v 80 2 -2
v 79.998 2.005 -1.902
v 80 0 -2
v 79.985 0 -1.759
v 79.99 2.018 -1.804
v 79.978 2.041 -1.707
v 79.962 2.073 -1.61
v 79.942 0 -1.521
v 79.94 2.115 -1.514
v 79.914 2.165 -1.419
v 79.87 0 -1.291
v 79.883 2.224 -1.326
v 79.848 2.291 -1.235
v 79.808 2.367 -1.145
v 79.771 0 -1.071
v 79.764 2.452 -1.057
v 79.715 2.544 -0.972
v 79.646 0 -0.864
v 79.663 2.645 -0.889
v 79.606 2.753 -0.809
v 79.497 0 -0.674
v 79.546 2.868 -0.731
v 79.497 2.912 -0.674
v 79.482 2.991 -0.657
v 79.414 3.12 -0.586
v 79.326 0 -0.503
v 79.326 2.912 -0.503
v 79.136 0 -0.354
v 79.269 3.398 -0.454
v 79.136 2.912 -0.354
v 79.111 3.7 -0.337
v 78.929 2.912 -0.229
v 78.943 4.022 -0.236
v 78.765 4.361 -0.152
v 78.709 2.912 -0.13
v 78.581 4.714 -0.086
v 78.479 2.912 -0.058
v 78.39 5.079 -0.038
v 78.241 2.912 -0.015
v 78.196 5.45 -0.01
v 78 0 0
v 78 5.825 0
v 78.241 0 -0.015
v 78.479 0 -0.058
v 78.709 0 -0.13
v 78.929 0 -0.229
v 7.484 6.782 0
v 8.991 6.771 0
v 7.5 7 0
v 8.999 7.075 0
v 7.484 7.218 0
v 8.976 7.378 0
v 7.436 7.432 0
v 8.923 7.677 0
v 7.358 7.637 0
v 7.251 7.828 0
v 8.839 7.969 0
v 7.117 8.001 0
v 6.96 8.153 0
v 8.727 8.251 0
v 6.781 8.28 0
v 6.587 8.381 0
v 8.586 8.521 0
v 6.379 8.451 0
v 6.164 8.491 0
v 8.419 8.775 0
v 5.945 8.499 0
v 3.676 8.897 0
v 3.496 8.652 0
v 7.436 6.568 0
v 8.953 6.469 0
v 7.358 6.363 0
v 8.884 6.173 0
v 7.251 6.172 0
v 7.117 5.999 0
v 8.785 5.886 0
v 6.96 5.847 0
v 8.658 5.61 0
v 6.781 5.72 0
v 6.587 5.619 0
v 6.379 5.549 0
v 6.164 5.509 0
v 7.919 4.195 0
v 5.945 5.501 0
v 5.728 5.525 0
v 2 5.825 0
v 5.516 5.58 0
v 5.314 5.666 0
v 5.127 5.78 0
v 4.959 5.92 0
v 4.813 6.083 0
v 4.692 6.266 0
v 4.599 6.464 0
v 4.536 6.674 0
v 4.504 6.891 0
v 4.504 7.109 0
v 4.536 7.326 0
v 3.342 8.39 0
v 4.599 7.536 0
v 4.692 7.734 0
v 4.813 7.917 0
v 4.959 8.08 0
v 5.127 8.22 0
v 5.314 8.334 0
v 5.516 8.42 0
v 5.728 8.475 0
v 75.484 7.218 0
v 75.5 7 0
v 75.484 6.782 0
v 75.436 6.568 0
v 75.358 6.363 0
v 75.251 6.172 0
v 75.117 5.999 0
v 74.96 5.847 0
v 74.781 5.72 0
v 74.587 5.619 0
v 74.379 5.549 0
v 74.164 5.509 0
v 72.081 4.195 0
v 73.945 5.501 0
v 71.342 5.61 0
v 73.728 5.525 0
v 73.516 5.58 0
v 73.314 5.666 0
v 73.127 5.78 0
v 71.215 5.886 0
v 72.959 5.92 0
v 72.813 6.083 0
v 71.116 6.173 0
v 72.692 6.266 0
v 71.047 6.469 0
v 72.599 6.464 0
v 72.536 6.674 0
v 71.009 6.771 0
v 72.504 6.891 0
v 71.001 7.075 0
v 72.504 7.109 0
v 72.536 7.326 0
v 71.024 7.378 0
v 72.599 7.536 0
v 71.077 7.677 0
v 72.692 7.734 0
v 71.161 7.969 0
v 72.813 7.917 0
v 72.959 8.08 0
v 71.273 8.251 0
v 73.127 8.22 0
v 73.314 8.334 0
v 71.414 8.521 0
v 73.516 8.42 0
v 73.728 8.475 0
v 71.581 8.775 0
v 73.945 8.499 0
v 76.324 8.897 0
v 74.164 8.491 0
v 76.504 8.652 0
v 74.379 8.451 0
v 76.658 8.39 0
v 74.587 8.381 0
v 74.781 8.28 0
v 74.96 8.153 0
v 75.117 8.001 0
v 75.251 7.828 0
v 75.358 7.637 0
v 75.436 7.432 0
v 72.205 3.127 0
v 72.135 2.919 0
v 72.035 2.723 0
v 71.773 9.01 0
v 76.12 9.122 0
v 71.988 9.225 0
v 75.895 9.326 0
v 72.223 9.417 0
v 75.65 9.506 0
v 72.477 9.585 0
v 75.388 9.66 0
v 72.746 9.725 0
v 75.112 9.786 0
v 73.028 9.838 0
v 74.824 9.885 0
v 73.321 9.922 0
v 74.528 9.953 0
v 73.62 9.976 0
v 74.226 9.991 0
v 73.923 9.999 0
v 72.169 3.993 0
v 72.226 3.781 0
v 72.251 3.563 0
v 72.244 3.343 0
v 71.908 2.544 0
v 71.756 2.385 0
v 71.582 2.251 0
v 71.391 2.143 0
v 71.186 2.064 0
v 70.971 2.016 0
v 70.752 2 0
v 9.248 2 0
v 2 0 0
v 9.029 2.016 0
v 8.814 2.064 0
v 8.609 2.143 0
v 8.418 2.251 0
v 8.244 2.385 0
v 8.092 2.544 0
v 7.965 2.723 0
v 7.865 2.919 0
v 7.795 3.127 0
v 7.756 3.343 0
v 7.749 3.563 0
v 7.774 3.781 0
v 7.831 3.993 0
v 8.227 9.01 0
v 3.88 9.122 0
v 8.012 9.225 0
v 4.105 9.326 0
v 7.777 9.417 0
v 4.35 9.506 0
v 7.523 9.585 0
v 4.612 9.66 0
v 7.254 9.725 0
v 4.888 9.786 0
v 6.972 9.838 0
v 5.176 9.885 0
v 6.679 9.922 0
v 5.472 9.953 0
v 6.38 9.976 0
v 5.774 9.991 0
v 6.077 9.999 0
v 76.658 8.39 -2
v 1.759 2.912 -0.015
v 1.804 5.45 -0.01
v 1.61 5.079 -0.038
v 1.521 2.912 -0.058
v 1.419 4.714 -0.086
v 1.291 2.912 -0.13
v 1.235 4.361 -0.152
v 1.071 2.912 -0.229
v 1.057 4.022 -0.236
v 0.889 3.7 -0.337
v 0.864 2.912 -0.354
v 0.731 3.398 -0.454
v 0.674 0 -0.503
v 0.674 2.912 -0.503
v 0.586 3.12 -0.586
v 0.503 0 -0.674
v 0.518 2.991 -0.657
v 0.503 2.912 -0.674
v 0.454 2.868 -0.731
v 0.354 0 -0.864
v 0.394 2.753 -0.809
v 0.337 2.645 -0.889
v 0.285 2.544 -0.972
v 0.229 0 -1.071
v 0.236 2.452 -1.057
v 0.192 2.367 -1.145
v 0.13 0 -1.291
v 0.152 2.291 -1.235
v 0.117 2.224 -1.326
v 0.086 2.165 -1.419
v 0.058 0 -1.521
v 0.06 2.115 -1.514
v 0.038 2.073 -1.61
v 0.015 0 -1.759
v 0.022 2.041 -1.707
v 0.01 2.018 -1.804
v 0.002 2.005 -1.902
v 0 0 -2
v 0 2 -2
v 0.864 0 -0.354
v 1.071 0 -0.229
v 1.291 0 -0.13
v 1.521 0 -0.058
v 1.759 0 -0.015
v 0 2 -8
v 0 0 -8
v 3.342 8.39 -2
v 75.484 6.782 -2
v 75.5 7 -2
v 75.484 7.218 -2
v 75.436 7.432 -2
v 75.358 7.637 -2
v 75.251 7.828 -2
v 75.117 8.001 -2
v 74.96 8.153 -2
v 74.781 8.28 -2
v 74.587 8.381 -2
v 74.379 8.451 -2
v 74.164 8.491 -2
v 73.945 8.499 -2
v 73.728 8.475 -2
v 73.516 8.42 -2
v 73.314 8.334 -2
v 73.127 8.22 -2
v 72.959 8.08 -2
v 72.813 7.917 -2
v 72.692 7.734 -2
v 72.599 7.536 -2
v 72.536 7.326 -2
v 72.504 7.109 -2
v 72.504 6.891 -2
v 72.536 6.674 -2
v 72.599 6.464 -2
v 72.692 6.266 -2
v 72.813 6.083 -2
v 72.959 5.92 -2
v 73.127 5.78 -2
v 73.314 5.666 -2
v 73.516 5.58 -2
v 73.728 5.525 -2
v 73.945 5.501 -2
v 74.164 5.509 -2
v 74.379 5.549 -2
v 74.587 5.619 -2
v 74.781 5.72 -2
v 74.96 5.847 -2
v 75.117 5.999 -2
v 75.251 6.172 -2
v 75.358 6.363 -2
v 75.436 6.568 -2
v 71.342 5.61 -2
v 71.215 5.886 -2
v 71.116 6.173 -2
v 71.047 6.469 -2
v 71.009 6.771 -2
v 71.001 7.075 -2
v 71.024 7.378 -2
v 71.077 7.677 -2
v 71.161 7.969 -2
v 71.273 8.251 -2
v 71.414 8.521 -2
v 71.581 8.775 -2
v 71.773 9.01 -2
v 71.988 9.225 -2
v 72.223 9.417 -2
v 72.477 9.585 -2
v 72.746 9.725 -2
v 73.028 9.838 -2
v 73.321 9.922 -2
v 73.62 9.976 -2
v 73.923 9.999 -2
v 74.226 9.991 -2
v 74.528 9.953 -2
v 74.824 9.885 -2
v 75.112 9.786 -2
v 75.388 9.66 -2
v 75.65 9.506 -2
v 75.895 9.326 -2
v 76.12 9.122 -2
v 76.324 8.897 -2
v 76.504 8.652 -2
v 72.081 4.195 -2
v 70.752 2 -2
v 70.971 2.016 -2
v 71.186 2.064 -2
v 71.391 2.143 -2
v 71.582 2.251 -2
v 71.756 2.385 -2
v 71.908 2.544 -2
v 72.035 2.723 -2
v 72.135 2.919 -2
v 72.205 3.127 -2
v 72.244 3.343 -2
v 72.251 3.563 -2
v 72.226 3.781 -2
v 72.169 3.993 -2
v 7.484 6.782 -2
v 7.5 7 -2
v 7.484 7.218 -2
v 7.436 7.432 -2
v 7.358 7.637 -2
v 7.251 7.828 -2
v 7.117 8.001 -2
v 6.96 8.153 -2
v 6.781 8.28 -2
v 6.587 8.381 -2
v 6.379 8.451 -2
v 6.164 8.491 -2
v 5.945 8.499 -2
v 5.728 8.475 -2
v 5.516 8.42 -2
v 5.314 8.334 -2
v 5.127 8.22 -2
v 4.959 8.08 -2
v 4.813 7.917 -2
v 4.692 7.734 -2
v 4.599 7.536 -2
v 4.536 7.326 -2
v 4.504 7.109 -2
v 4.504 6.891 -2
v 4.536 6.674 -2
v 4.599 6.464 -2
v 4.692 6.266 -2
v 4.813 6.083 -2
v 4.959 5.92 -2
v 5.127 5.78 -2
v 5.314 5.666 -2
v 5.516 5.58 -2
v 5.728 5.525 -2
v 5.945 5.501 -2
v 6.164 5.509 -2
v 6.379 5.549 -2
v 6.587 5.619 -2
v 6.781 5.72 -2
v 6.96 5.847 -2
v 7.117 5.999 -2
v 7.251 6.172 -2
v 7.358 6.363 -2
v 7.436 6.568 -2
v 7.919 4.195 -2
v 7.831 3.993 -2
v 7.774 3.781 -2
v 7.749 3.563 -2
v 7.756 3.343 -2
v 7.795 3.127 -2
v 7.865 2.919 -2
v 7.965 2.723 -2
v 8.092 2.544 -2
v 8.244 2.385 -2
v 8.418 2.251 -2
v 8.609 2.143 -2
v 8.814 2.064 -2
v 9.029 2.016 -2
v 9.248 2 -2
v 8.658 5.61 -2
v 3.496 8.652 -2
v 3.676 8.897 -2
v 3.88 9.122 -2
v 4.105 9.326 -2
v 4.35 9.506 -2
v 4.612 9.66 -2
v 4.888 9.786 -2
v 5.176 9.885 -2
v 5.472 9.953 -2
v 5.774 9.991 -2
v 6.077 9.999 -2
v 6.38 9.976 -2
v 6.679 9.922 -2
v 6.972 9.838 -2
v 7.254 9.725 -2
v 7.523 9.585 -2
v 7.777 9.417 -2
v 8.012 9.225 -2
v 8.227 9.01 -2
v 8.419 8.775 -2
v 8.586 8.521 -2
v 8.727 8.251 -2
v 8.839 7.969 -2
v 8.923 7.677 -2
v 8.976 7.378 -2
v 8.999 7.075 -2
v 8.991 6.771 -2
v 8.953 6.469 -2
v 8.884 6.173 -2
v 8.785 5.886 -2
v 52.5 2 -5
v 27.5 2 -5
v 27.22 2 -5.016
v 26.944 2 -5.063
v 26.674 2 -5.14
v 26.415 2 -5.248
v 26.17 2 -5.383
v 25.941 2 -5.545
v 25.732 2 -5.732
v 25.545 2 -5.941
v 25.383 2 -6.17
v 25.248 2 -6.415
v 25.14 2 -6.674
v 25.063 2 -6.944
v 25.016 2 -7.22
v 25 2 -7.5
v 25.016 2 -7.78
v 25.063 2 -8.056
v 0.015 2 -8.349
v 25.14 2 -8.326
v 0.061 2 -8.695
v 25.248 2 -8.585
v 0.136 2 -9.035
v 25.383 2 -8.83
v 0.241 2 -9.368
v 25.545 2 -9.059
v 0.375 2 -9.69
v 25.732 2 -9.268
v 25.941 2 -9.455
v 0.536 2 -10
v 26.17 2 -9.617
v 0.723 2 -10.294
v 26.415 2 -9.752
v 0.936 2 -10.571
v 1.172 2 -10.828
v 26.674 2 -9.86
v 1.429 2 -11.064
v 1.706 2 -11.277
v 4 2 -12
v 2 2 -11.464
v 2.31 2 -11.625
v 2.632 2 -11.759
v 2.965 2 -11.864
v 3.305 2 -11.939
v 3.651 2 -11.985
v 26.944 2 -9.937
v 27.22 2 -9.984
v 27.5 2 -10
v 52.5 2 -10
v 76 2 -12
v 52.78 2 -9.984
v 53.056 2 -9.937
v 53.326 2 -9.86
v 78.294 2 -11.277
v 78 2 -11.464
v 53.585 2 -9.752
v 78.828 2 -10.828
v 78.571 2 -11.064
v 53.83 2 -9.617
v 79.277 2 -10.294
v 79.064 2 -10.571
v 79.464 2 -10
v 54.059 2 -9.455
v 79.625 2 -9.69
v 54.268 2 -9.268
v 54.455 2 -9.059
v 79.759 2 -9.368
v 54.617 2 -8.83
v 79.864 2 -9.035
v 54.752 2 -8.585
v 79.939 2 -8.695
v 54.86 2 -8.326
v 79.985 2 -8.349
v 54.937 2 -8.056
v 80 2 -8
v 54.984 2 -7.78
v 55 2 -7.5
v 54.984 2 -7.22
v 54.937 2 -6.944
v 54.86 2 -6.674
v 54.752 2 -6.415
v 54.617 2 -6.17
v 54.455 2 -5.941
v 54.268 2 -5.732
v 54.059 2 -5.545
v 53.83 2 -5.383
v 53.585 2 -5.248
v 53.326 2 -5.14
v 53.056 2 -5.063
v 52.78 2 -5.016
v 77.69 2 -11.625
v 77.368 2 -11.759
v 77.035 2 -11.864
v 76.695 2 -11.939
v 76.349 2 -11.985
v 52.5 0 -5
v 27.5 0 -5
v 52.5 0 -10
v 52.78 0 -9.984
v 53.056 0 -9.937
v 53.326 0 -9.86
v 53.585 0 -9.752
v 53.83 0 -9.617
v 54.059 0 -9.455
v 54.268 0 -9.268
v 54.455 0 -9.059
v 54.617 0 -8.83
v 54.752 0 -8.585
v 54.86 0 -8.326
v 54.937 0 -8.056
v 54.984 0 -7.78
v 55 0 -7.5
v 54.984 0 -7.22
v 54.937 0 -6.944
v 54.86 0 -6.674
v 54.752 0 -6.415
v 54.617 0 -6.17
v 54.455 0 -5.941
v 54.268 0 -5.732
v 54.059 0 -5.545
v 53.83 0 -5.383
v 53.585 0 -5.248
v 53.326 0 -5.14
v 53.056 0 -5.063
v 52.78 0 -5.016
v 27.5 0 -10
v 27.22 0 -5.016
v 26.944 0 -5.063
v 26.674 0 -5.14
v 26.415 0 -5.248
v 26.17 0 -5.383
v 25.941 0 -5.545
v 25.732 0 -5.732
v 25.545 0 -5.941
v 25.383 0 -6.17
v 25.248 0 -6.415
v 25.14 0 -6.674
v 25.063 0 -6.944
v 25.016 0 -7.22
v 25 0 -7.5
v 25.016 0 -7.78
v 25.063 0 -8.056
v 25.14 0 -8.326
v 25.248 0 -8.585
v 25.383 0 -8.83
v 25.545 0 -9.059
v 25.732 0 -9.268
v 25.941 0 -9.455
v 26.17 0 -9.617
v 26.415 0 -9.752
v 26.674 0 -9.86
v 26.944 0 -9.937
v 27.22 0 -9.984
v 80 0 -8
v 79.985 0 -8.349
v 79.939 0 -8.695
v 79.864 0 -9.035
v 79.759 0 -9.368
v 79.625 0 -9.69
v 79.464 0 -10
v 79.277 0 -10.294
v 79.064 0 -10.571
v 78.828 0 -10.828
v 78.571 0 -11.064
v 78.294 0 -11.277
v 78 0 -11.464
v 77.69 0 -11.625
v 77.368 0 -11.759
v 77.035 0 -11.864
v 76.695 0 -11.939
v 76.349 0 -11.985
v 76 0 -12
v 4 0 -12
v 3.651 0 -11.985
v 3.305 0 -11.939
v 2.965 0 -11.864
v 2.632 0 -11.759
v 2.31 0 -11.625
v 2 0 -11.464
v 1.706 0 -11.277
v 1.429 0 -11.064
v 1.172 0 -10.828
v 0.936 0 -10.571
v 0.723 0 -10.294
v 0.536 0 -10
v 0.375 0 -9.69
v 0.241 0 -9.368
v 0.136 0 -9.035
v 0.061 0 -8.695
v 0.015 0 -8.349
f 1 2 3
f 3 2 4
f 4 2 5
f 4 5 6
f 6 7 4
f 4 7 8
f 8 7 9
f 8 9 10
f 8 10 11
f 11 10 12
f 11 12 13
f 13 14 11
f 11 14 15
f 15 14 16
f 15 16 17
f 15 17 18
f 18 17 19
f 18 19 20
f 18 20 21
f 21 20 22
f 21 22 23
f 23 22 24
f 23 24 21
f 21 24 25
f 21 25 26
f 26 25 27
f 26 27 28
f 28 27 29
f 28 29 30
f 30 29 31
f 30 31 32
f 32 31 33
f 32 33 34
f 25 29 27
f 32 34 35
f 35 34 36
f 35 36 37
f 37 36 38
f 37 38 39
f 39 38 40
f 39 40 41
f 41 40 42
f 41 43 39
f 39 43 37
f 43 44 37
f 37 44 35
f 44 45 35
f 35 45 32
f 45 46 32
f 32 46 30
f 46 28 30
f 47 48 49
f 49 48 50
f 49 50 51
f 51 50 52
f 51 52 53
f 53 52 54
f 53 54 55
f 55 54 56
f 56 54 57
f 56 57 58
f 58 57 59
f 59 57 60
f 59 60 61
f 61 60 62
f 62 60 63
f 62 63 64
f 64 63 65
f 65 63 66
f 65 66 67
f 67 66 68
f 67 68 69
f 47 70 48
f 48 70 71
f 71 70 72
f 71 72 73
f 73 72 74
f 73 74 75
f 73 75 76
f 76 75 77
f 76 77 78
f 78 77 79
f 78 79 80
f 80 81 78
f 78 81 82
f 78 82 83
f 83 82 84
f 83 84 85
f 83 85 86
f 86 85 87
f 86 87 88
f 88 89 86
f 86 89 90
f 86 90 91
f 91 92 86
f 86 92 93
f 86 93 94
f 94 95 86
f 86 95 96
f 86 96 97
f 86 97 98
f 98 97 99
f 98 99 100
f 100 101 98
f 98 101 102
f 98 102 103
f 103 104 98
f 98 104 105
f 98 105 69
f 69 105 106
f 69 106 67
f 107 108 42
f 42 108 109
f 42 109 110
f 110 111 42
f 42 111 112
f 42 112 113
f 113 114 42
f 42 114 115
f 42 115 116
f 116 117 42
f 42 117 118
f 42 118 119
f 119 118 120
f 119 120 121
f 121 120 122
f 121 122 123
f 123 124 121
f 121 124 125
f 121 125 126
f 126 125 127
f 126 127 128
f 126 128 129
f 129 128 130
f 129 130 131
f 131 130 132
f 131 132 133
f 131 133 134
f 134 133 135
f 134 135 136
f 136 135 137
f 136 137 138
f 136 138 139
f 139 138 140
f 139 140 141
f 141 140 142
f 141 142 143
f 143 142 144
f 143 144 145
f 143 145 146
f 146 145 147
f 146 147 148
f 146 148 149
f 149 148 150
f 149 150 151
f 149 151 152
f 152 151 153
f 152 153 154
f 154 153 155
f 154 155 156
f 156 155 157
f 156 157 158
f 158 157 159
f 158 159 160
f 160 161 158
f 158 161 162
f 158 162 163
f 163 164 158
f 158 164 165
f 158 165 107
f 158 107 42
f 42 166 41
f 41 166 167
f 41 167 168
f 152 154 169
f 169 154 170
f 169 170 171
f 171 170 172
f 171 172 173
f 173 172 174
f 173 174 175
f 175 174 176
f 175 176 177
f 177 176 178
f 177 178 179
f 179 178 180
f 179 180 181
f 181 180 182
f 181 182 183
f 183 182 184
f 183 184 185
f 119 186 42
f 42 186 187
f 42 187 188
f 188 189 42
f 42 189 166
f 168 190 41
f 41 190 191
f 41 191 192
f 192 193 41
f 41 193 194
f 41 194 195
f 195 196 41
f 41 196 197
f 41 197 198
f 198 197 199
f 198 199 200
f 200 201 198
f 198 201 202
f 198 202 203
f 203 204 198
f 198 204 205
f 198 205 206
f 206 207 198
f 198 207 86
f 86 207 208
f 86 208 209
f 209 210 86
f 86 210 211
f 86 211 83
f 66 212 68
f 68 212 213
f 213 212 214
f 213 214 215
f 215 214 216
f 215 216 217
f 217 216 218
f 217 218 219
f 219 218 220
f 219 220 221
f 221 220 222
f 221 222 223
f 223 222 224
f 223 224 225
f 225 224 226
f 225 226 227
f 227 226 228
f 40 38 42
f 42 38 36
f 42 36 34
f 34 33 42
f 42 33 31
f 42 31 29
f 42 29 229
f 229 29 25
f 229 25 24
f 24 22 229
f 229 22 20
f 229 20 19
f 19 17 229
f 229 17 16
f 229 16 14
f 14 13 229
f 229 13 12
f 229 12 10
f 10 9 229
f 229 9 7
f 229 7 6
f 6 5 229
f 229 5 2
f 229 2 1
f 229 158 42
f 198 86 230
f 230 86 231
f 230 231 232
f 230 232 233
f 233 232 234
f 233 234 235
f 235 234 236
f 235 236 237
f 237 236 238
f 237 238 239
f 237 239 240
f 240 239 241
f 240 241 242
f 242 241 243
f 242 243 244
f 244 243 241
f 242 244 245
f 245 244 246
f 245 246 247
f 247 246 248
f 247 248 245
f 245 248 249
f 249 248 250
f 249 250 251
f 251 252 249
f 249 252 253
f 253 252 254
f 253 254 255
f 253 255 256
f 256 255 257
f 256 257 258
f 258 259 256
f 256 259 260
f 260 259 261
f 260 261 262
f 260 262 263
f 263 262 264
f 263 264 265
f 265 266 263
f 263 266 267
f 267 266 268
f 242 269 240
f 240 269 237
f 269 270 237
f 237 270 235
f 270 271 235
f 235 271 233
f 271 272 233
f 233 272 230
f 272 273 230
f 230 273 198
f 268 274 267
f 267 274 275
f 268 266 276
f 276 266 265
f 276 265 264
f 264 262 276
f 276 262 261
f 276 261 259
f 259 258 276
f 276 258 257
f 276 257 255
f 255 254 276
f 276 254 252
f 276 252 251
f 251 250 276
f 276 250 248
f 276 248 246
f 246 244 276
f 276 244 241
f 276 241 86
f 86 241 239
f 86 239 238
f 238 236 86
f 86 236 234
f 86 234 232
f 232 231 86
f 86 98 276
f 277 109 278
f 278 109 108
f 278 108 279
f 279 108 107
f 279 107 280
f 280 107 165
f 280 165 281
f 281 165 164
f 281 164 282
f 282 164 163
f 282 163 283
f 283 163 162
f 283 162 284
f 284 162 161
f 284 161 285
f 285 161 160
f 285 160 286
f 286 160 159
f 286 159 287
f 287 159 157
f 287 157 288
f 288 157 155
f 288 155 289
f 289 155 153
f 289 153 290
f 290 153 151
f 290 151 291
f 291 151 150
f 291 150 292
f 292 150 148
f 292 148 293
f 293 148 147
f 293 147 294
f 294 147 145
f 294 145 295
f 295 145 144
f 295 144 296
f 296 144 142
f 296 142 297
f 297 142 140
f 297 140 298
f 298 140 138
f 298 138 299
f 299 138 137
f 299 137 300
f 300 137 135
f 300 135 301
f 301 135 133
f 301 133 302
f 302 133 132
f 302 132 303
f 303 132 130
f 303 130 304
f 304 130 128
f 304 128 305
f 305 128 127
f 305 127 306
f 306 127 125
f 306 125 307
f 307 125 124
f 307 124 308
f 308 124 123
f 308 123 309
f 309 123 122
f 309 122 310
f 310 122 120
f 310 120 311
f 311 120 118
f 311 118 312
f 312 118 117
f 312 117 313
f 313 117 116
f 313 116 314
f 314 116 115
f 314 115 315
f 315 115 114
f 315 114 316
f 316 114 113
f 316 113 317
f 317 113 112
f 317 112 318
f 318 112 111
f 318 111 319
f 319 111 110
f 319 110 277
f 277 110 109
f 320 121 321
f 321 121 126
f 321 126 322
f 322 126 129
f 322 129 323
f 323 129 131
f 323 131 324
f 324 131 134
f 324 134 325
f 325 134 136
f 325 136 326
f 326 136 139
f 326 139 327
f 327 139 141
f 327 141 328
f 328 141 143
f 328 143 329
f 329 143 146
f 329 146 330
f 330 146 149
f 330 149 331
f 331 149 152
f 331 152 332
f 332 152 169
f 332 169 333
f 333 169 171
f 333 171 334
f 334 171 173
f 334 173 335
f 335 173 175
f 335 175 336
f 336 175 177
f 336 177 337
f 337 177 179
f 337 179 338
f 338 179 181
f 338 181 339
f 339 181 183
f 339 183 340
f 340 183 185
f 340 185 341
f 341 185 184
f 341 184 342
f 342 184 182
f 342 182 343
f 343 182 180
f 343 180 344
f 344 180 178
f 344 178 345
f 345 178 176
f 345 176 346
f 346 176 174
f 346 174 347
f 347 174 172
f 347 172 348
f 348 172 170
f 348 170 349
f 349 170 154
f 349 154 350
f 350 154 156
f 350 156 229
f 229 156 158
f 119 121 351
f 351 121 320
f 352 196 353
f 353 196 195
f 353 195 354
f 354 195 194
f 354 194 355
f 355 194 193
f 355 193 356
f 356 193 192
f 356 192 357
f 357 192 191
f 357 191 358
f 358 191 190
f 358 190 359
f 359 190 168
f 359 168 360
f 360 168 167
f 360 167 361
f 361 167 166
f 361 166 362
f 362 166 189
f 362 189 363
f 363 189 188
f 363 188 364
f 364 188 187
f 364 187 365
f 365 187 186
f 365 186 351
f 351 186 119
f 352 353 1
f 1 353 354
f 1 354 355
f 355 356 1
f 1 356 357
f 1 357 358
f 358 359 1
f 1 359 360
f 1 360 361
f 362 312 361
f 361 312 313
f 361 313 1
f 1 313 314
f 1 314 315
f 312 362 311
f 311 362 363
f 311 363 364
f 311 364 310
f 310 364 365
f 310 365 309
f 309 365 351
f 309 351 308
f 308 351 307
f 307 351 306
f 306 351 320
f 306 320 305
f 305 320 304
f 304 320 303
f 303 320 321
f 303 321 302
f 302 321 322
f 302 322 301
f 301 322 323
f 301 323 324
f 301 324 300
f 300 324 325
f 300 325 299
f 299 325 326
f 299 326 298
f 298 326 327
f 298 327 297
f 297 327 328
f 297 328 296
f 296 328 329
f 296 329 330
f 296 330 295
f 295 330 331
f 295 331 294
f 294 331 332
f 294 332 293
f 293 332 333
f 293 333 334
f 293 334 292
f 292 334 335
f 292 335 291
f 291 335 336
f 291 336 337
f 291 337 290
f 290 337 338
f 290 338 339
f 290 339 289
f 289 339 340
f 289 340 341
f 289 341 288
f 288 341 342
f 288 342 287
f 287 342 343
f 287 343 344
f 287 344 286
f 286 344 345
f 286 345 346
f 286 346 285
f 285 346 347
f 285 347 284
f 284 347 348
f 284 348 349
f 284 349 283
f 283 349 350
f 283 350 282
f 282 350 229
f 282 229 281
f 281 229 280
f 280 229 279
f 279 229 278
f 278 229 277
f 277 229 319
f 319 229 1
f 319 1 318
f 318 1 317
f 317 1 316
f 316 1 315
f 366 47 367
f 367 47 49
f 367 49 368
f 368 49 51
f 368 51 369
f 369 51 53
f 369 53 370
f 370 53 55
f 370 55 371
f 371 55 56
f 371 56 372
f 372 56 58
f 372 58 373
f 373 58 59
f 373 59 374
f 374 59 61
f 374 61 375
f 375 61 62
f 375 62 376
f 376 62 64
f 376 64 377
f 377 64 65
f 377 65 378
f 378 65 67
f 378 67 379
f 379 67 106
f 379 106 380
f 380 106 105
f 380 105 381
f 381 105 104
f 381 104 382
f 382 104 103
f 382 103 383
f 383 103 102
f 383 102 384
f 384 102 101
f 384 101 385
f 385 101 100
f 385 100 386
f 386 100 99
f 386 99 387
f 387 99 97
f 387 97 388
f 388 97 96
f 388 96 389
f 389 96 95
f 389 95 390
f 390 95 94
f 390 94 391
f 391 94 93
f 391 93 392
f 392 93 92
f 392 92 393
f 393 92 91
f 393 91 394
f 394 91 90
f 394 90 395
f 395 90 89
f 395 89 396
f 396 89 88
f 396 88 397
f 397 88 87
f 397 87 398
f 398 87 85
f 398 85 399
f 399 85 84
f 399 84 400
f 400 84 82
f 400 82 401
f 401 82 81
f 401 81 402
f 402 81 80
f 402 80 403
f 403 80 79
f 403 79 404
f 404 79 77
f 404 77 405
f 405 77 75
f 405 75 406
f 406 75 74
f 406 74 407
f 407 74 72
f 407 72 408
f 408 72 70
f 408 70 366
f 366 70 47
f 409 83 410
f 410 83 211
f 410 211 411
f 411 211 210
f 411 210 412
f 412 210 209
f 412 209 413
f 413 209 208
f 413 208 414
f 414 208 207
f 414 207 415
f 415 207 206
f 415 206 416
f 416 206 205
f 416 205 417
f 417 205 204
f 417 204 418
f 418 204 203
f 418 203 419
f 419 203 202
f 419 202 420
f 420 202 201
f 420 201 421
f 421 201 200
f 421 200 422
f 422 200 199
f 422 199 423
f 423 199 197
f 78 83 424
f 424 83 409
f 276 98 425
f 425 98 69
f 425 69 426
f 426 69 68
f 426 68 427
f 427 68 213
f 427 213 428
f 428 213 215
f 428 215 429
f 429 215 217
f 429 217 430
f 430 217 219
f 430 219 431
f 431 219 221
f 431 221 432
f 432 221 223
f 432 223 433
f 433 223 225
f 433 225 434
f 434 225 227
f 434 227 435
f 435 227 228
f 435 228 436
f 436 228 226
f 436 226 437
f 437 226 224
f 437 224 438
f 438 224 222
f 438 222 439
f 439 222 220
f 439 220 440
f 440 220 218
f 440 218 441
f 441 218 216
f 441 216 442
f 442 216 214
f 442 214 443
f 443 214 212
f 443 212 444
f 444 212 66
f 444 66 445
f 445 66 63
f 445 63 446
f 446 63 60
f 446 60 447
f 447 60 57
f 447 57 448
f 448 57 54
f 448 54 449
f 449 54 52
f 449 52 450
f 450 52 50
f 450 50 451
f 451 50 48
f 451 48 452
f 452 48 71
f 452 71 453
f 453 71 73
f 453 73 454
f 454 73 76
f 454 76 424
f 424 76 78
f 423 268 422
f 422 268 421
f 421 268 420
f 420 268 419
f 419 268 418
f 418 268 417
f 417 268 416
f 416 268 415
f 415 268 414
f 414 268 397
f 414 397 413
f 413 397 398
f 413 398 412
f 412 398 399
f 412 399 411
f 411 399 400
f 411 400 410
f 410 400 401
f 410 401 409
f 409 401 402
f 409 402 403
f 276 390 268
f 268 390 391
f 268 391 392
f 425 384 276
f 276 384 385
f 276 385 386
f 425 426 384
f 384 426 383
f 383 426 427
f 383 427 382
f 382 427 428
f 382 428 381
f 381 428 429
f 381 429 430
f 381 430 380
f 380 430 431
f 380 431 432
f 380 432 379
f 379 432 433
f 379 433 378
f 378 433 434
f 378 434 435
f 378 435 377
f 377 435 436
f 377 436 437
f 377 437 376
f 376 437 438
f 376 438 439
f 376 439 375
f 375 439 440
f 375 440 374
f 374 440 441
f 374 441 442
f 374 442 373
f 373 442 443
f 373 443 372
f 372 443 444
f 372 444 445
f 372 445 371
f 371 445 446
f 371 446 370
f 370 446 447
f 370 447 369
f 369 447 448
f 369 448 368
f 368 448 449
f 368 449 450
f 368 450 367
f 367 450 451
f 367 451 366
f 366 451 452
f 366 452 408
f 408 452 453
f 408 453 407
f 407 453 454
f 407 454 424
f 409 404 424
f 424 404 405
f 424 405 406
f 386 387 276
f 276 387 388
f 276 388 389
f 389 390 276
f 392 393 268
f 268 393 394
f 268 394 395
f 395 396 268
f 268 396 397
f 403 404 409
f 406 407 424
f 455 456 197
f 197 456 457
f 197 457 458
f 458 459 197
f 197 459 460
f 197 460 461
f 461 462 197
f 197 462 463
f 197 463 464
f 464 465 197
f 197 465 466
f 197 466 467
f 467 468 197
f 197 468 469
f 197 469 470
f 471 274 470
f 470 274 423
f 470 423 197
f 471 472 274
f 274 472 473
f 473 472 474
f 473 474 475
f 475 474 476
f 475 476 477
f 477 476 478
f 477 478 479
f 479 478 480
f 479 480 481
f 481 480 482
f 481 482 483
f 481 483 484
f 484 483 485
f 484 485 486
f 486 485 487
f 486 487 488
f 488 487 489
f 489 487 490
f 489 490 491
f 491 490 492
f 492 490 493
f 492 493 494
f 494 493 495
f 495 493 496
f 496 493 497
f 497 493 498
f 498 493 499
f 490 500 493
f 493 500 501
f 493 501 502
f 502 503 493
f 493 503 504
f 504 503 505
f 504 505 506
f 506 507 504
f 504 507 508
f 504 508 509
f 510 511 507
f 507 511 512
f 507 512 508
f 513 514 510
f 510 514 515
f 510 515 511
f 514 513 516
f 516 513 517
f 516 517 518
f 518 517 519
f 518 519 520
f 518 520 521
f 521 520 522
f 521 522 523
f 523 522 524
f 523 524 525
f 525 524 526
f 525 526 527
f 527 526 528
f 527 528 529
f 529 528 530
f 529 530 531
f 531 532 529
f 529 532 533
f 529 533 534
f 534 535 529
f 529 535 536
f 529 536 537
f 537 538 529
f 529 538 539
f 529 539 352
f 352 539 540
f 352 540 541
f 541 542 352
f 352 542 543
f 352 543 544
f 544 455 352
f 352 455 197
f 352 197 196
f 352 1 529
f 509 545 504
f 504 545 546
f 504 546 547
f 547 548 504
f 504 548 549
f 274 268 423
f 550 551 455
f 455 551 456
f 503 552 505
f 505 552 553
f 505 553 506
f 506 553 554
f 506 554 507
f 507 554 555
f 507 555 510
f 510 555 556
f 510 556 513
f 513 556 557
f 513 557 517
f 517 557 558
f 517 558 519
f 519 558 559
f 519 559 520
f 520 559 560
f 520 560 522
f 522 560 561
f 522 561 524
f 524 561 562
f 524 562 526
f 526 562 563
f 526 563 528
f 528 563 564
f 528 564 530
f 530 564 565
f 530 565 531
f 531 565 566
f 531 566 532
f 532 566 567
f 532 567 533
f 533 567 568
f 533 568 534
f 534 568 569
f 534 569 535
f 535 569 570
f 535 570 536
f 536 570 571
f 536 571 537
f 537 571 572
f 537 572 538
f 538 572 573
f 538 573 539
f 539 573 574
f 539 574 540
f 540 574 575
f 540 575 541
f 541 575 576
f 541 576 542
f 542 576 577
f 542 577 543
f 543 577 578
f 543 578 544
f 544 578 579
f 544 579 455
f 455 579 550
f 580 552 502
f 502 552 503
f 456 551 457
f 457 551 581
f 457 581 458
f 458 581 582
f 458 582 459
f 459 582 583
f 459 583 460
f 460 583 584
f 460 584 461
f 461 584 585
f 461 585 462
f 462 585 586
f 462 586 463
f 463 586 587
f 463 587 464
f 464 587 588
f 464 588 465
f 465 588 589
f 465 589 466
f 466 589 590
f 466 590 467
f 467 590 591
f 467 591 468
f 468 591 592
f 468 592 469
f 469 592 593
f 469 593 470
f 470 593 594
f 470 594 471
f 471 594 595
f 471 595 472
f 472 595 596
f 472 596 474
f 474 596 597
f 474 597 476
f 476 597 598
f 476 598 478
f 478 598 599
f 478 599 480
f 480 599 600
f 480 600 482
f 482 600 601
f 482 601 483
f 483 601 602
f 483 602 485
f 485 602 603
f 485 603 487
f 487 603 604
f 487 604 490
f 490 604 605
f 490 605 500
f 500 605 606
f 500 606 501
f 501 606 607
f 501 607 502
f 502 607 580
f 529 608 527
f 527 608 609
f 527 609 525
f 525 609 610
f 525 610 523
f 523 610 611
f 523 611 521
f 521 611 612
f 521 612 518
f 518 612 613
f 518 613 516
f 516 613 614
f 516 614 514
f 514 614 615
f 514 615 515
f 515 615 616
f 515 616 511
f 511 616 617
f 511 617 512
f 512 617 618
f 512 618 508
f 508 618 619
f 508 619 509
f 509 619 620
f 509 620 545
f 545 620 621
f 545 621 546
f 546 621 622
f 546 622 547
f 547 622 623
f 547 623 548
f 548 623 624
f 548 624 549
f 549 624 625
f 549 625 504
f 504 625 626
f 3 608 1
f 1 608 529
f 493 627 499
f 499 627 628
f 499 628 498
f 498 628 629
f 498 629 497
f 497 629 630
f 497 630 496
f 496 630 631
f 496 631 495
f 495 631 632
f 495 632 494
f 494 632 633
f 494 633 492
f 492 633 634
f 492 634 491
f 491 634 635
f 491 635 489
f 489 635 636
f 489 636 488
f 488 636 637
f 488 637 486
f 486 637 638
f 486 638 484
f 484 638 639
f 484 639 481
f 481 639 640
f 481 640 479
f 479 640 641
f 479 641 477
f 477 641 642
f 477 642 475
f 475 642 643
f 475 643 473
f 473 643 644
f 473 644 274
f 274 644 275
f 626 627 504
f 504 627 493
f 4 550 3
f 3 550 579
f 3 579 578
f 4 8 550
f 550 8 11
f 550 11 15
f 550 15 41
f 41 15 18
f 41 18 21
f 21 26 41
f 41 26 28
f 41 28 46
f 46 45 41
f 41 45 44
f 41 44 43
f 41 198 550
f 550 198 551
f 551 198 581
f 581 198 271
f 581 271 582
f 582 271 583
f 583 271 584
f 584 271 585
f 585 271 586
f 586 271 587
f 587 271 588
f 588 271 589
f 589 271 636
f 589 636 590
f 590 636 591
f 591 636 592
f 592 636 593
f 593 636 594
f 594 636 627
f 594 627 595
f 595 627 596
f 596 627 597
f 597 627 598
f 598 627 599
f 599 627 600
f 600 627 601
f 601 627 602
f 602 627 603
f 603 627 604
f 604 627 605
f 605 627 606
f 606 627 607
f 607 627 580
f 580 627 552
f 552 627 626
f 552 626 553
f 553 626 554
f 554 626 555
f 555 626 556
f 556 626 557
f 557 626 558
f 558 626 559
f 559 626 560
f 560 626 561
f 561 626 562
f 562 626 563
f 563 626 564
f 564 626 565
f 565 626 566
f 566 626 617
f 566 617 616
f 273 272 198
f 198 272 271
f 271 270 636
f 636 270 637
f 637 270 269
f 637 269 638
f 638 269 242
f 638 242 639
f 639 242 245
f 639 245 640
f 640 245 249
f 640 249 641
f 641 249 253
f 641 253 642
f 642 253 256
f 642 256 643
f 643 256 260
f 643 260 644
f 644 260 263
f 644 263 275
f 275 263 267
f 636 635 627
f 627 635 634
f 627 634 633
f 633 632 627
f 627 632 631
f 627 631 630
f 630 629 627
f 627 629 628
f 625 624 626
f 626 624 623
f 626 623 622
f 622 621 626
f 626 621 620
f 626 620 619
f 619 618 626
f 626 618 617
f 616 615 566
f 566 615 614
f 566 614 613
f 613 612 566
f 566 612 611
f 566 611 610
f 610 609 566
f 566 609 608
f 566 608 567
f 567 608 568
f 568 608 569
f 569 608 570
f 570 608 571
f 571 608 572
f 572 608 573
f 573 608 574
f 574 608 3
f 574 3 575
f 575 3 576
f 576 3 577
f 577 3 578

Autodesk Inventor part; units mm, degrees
ref_plane "YZ Plane" through (0, 0, 0) normal (1, 0, 0) x (0, 1, 0)
ref_plane "XZ Plane" through (0, 0, 0) normal (0, 1, 0) x (-1, 0, 0)
ref_plane "XY Plane" through (0, 0, 0) normal (0, 0, 1) x (1, 0, 0)
sketch "Sketch1" plane through (0, 0, 0) normal (0, 1, 0) x (-1, 0, 0)
  line L0 (-27.5, -7.5) -> (-52.5, -7.5) construction
  line L1 (-27.5, -5) -> (-52.5, -5)
  line L2 (-52.5, -10) -> (-27.5, -10)
  arc A0 (-27.5, -10) -> (-27.5, -5) centre (-27.5, -7.5) ccw
  arc A1 (-52.5, -5) -> (-52.5, -10) centre (-52.5, -7.5) ccw
  line L3 (-4, -12) -> (-76, -12)
  line L4 (-80, -8) -> (-80, 0)
  line L5 (-80, 0) -> (0, 0)
  line L6 (0, 0) -> (0, -8)
  arc A2 (-4, -12) -> (0, -8) centre (-4, -8) ccw
  arc A3 (-80, -8) -> (-76, -12) centre (-76, -8) ccw
  point P0 (-40, -7.5)
  point P1 (-80, -12)
  point P2 (-40, -12)
  dimension "d0" = 25
  dimension "d1" = 5
  dimension "d2" = 80
  dimension "d3" = 12
  dimension "d5" = 4
  dimension "d6" = 2
extrude "Extrusion1" add sketch "Sketch1" along normal blind 2
sketch "Sketch2" plane through (0, 0, 0) normal (0, 0, 1) x (1, 0, 0)
  circle A0 centre (6, 7) radius 1.5
  circle A1 centre (74, 7) radius 1.5
  line L0 (0, 0) -> (0, 2) projected
  line L1 (80, 0) -> (80, 2) projected
  line L2 (0, 2) -> (80, 2) projected
  line L3 (4, 2) -> (0, 2) projected
  line L4 (76, 2) -> (4, 2) projected
  line L5 (9.2479, 2) -> (12, 2)
  arc A2 (8.6585, 5.6098) -> (3.3415, 8.3902) centre (6, 7) ccw
  line L6 (0, 2) -> (3.3415, 8.3902)
  line L7 (7.9187, 4.1951) -> (8.6585, 5.6098)
  arc A3 (7.9187, 4.1951) -> (9.2479, 2) centre (9.2479, 3.5) ccw
  arc A4 (76.6585, 8.3902) -> (71.3415, 5.6098) centre (74, 7) ccw
  line L8 (80, 2) -> (76.6585, 8.3902)
  line L9 (71.3415, 5.6098) -> (72.0813, 4.1951)
  line L10 (70.7521, 2) -> (70.1315, 2)
  arc A5 (70.7521, 2) -> (72.0813, 4.1951) centre (70.7521, 3.5) ccw
  point P0 (6.7708, 2)
  point P1 (73.2292, 2)
  point P2 (9.2479, 2)
  dimension "d9" = 3
  dimension "d10" = 3
  dimension "d11" = 6
  dimension "d12" = 6
  dimension "d13" = 5
  dimension "d16" = 6
  dimension "d17" = 1.5
  dimension "d18" = 6
  dimension "d19" = 1.5
extrude "Extrusion2" add sketch "Sketch2" against normal blind 2
fillet "Fillet1" radius 2 2 edges at (0, 1, 0) (80, 1, 0)
equation "\"d10\" = d9"
equation "\"d12\" = d11"
equation "\"d18\" = d16"
equation "\"d19\" = d17"
properties part number "PCB Mount Support"
